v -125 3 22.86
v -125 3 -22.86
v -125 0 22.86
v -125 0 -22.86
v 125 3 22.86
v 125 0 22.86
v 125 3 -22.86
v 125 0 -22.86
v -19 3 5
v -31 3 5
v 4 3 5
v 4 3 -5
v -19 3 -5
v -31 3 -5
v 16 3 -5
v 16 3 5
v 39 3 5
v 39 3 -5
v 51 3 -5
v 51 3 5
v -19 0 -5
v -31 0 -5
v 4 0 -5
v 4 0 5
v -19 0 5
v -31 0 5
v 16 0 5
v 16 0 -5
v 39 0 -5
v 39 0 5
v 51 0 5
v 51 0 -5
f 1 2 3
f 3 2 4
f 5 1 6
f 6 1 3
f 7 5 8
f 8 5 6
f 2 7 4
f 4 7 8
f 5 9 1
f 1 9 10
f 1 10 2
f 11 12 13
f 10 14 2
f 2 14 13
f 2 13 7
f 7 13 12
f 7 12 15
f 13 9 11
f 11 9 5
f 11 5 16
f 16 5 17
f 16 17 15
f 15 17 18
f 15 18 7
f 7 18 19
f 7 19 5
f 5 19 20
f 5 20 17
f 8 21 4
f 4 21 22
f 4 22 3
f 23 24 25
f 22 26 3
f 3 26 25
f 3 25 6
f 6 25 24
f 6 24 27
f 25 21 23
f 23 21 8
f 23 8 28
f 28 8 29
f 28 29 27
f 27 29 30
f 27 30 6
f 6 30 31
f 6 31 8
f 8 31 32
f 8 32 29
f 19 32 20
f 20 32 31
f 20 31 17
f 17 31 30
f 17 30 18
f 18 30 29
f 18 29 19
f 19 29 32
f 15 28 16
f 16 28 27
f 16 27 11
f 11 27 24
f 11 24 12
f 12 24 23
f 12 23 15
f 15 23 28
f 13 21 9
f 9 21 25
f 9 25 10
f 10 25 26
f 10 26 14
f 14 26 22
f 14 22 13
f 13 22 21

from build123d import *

# Parameters (mm, degrees)
SKETCH1_W               = 250
SKETCH1_H               = 45.72
BOSS_EXTRUDE1_DEPTH     = 3
CUT_EXTRUDE1_DEPTH      = 128.108534725
CUT_EXTRUDE1_DEPTH_BACK = 128.108534725
SKETCH2_W               = 12
SKETCH2_H               = 10


with BuildPart() as part:
    # Sketch1 → Boss-Extrude1 (new body)
    with BuildSketch(Plane(origin=(0, 0, 0), x_dir=(1, 0, 0), z_dir=(0, 1, 0))):
        Rectangle(SKETCH1_W, SKETCH1_H)
    extrude(amount=BOSS_EXTRUDE1_DEPTH)

    # Sketch2 → Cut-Extrude1 (cut, two sides: drawn at the far end of the back side and taken through both)
    with BuildSketch(Plane(origin=(0, 0, 0), x_dir=(1, 0, 0), z_dir=(0, 1, 0)).offset(-CUT_EXTRUDE1_DEPTH_BACK)):
        with Locations((-25, 0)):
            Rectangle(SKETCH2_W, SKETCH2_H)
        with Locations((10, 0)):
            Rectangle(SKETCH2_W, SKETCH2_H)
        with Locations((45, 0)):
            Rectangle(SKETCH2_W, SKETCH2_H)
    extrude(amount=CUT_EXTRUDE1_DEPTH + CUT_EXTRUDE1_DEPTH_BACK, mode=Mode.SUBTRACT)


solid = part.part
